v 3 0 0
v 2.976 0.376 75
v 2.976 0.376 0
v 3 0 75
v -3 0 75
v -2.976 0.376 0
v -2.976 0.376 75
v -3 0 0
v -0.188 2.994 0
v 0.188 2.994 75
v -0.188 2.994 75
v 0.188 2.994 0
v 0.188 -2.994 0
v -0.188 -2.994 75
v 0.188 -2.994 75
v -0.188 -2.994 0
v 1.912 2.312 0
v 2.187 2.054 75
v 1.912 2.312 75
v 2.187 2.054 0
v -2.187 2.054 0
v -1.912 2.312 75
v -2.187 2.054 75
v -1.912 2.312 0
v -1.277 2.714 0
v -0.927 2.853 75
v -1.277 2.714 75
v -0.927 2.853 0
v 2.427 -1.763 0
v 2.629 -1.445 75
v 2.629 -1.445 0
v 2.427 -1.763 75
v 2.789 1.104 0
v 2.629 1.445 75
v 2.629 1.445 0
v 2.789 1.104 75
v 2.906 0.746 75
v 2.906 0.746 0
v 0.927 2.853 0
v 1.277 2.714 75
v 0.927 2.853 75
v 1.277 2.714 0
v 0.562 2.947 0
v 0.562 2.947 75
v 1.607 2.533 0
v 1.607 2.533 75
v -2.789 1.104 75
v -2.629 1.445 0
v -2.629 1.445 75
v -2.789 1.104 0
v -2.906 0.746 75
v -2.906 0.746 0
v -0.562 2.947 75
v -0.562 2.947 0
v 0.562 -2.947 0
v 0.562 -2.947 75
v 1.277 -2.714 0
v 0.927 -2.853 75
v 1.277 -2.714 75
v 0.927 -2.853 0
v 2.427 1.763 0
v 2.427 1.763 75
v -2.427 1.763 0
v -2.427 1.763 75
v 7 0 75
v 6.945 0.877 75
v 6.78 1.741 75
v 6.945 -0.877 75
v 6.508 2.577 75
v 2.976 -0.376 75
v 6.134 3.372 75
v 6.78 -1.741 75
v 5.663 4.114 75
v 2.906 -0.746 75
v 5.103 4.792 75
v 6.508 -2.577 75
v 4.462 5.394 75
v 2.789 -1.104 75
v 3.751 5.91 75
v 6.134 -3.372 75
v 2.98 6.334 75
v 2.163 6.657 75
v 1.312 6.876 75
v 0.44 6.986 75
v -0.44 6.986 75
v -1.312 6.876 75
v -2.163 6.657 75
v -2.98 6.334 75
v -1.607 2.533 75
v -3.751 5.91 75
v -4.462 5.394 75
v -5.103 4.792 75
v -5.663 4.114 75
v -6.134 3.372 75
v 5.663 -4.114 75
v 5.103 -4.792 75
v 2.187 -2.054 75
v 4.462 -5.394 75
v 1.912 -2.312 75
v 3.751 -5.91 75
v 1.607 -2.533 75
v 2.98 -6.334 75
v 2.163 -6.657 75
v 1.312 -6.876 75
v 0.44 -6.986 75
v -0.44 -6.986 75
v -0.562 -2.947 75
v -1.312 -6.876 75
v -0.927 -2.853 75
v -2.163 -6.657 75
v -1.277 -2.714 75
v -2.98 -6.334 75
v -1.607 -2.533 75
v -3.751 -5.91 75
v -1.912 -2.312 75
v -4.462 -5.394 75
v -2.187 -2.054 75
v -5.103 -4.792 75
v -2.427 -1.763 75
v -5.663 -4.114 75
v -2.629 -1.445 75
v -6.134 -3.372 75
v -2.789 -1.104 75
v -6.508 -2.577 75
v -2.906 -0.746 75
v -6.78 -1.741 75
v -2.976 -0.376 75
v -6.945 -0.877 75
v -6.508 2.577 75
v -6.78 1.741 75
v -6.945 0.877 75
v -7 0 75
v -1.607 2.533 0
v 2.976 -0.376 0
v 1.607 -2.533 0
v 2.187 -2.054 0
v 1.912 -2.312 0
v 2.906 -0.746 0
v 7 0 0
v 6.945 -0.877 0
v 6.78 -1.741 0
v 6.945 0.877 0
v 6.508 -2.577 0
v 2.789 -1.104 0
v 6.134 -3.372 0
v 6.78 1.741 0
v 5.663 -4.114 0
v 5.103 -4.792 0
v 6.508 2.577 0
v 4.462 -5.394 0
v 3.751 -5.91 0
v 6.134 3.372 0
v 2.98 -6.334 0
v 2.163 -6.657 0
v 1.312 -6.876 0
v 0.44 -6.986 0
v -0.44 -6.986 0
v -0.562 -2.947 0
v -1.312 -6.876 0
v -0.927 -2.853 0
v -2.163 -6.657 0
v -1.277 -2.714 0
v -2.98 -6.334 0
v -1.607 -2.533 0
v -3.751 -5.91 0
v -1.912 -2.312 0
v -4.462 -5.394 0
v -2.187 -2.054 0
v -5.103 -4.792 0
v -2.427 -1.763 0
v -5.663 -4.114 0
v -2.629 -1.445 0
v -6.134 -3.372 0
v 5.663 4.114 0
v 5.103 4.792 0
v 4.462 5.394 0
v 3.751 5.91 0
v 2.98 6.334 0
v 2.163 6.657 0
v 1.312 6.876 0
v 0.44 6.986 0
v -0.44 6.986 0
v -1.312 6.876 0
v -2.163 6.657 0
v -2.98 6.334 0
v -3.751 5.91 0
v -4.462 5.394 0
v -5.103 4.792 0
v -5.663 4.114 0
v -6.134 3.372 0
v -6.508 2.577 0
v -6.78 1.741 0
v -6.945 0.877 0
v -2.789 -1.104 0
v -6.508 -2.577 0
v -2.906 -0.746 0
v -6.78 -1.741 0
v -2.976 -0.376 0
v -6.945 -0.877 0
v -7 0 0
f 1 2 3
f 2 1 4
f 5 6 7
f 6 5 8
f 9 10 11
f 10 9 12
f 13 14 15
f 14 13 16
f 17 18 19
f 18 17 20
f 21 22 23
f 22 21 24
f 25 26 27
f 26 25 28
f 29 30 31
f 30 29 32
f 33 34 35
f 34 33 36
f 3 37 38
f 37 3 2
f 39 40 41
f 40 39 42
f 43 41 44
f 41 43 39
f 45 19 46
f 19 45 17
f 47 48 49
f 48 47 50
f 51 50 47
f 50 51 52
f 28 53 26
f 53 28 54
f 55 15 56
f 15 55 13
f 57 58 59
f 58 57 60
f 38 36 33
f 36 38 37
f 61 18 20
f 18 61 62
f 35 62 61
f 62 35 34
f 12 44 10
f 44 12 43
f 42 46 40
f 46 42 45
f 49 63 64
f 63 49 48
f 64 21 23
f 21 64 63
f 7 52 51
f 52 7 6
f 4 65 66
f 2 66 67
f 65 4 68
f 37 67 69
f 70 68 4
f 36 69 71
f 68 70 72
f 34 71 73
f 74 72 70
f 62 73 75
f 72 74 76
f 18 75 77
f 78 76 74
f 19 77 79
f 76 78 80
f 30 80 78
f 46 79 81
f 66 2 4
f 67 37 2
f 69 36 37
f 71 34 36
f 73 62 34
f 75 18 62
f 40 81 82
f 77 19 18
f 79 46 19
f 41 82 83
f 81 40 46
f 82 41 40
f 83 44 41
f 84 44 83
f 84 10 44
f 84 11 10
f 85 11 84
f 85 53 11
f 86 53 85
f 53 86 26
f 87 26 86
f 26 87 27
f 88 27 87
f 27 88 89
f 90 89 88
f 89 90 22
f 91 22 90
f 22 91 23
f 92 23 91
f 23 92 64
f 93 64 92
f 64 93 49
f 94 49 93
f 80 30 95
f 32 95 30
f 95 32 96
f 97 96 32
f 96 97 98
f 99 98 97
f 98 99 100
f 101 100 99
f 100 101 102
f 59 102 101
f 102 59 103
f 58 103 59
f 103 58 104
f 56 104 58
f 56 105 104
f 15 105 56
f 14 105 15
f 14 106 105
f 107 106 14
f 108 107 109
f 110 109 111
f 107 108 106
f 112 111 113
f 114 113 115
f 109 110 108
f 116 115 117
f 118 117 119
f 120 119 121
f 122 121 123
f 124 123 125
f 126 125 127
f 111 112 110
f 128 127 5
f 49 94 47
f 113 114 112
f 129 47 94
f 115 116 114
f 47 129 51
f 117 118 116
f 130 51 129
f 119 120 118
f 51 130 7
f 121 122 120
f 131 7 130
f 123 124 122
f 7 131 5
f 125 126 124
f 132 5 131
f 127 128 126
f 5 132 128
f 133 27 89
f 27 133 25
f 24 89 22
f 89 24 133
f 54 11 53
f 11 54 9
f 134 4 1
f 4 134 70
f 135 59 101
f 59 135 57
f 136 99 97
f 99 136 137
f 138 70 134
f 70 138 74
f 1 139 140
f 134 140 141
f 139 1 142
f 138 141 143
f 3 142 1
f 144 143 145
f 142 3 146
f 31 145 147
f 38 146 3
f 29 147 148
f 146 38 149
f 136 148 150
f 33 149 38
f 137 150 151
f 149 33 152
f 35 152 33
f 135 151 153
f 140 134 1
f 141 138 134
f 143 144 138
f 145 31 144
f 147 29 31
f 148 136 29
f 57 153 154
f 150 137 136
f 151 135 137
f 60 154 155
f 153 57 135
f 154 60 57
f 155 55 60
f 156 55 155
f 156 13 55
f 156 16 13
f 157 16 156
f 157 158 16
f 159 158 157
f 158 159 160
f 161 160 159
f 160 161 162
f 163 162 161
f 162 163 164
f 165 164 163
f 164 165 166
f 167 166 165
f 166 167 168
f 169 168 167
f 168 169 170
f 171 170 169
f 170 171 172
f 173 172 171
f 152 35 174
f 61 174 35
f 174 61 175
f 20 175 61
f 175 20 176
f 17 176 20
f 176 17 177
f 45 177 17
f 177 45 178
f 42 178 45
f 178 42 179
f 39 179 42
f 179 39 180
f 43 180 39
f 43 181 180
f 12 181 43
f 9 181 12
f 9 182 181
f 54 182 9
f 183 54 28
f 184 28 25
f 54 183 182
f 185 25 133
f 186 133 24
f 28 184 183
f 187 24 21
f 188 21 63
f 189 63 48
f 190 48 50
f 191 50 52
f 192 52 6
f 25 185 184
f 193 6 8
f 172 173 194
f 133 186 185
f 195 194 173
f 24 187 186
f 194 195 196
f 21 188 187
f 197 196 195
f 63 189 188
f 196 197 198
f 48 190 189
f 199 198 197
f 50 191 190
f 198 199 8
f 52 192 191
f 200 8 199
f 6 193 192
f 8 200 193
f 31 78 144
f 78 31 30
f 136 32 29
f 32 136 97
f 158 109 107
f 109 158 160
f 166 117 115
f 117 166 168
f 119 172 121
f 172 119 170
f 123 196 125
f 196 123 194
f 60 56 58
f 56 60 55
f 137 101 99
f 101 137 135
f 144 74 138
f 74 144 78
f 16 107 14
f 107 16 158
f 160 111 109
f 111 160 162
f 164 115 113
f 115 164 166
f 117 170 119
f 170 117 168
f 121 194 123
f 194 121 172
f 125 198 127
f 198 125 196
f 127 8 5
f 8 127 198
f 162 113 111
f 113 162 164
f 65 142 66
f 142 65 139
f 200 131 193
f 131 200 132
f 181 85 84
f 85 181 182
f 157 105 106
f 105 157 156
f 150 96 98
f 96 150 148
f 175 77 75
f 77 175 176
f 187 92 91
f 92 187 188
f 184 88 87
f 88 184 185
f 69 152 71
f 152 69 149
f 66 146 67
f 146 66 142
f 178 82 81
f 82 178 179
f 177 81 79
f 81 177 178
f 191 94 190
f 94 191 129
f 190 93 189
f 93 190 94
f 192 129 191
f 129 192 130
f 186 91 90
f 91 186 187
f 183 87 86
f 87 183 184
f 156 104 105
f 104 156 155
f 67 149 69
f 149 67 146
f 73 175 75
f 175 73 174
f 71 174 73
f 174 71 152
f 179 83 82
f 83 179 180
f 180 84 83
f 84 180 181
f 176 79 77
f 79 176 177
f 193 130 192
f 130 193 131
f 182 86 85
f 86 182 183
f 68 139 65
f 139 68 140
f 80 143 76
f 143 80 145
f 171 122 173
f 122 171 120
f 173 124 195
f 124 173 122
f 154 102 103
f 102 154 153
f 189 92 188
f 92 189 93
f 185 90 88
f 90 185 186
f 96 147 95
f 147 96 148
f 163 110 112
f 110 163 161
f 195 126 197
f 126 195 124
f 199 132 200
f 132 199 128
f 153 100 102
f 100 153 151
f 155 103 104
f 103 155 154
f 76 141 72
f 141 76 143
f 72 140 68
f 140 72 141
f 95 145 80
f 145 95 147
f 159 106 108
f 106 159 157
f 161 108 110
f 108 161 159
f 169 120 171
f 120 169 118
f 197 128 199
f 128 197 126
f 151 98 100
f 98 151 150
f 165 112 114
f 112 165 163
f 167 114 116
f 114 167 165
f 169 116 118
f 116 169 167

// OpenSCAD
$fn = 50;


difference() {
	union() {
		cylinder(h = 75, r = 7.0000000000);
	}
	union() {
		cylinder(h = 75, r = 3.0000000000);
		cylinder(h = 75, r = 1.5000000000);
		cylinder(h = 75, r = 1.5000000000);
		cylinder(h = 75, r = 1.5000000000);
	}
}
